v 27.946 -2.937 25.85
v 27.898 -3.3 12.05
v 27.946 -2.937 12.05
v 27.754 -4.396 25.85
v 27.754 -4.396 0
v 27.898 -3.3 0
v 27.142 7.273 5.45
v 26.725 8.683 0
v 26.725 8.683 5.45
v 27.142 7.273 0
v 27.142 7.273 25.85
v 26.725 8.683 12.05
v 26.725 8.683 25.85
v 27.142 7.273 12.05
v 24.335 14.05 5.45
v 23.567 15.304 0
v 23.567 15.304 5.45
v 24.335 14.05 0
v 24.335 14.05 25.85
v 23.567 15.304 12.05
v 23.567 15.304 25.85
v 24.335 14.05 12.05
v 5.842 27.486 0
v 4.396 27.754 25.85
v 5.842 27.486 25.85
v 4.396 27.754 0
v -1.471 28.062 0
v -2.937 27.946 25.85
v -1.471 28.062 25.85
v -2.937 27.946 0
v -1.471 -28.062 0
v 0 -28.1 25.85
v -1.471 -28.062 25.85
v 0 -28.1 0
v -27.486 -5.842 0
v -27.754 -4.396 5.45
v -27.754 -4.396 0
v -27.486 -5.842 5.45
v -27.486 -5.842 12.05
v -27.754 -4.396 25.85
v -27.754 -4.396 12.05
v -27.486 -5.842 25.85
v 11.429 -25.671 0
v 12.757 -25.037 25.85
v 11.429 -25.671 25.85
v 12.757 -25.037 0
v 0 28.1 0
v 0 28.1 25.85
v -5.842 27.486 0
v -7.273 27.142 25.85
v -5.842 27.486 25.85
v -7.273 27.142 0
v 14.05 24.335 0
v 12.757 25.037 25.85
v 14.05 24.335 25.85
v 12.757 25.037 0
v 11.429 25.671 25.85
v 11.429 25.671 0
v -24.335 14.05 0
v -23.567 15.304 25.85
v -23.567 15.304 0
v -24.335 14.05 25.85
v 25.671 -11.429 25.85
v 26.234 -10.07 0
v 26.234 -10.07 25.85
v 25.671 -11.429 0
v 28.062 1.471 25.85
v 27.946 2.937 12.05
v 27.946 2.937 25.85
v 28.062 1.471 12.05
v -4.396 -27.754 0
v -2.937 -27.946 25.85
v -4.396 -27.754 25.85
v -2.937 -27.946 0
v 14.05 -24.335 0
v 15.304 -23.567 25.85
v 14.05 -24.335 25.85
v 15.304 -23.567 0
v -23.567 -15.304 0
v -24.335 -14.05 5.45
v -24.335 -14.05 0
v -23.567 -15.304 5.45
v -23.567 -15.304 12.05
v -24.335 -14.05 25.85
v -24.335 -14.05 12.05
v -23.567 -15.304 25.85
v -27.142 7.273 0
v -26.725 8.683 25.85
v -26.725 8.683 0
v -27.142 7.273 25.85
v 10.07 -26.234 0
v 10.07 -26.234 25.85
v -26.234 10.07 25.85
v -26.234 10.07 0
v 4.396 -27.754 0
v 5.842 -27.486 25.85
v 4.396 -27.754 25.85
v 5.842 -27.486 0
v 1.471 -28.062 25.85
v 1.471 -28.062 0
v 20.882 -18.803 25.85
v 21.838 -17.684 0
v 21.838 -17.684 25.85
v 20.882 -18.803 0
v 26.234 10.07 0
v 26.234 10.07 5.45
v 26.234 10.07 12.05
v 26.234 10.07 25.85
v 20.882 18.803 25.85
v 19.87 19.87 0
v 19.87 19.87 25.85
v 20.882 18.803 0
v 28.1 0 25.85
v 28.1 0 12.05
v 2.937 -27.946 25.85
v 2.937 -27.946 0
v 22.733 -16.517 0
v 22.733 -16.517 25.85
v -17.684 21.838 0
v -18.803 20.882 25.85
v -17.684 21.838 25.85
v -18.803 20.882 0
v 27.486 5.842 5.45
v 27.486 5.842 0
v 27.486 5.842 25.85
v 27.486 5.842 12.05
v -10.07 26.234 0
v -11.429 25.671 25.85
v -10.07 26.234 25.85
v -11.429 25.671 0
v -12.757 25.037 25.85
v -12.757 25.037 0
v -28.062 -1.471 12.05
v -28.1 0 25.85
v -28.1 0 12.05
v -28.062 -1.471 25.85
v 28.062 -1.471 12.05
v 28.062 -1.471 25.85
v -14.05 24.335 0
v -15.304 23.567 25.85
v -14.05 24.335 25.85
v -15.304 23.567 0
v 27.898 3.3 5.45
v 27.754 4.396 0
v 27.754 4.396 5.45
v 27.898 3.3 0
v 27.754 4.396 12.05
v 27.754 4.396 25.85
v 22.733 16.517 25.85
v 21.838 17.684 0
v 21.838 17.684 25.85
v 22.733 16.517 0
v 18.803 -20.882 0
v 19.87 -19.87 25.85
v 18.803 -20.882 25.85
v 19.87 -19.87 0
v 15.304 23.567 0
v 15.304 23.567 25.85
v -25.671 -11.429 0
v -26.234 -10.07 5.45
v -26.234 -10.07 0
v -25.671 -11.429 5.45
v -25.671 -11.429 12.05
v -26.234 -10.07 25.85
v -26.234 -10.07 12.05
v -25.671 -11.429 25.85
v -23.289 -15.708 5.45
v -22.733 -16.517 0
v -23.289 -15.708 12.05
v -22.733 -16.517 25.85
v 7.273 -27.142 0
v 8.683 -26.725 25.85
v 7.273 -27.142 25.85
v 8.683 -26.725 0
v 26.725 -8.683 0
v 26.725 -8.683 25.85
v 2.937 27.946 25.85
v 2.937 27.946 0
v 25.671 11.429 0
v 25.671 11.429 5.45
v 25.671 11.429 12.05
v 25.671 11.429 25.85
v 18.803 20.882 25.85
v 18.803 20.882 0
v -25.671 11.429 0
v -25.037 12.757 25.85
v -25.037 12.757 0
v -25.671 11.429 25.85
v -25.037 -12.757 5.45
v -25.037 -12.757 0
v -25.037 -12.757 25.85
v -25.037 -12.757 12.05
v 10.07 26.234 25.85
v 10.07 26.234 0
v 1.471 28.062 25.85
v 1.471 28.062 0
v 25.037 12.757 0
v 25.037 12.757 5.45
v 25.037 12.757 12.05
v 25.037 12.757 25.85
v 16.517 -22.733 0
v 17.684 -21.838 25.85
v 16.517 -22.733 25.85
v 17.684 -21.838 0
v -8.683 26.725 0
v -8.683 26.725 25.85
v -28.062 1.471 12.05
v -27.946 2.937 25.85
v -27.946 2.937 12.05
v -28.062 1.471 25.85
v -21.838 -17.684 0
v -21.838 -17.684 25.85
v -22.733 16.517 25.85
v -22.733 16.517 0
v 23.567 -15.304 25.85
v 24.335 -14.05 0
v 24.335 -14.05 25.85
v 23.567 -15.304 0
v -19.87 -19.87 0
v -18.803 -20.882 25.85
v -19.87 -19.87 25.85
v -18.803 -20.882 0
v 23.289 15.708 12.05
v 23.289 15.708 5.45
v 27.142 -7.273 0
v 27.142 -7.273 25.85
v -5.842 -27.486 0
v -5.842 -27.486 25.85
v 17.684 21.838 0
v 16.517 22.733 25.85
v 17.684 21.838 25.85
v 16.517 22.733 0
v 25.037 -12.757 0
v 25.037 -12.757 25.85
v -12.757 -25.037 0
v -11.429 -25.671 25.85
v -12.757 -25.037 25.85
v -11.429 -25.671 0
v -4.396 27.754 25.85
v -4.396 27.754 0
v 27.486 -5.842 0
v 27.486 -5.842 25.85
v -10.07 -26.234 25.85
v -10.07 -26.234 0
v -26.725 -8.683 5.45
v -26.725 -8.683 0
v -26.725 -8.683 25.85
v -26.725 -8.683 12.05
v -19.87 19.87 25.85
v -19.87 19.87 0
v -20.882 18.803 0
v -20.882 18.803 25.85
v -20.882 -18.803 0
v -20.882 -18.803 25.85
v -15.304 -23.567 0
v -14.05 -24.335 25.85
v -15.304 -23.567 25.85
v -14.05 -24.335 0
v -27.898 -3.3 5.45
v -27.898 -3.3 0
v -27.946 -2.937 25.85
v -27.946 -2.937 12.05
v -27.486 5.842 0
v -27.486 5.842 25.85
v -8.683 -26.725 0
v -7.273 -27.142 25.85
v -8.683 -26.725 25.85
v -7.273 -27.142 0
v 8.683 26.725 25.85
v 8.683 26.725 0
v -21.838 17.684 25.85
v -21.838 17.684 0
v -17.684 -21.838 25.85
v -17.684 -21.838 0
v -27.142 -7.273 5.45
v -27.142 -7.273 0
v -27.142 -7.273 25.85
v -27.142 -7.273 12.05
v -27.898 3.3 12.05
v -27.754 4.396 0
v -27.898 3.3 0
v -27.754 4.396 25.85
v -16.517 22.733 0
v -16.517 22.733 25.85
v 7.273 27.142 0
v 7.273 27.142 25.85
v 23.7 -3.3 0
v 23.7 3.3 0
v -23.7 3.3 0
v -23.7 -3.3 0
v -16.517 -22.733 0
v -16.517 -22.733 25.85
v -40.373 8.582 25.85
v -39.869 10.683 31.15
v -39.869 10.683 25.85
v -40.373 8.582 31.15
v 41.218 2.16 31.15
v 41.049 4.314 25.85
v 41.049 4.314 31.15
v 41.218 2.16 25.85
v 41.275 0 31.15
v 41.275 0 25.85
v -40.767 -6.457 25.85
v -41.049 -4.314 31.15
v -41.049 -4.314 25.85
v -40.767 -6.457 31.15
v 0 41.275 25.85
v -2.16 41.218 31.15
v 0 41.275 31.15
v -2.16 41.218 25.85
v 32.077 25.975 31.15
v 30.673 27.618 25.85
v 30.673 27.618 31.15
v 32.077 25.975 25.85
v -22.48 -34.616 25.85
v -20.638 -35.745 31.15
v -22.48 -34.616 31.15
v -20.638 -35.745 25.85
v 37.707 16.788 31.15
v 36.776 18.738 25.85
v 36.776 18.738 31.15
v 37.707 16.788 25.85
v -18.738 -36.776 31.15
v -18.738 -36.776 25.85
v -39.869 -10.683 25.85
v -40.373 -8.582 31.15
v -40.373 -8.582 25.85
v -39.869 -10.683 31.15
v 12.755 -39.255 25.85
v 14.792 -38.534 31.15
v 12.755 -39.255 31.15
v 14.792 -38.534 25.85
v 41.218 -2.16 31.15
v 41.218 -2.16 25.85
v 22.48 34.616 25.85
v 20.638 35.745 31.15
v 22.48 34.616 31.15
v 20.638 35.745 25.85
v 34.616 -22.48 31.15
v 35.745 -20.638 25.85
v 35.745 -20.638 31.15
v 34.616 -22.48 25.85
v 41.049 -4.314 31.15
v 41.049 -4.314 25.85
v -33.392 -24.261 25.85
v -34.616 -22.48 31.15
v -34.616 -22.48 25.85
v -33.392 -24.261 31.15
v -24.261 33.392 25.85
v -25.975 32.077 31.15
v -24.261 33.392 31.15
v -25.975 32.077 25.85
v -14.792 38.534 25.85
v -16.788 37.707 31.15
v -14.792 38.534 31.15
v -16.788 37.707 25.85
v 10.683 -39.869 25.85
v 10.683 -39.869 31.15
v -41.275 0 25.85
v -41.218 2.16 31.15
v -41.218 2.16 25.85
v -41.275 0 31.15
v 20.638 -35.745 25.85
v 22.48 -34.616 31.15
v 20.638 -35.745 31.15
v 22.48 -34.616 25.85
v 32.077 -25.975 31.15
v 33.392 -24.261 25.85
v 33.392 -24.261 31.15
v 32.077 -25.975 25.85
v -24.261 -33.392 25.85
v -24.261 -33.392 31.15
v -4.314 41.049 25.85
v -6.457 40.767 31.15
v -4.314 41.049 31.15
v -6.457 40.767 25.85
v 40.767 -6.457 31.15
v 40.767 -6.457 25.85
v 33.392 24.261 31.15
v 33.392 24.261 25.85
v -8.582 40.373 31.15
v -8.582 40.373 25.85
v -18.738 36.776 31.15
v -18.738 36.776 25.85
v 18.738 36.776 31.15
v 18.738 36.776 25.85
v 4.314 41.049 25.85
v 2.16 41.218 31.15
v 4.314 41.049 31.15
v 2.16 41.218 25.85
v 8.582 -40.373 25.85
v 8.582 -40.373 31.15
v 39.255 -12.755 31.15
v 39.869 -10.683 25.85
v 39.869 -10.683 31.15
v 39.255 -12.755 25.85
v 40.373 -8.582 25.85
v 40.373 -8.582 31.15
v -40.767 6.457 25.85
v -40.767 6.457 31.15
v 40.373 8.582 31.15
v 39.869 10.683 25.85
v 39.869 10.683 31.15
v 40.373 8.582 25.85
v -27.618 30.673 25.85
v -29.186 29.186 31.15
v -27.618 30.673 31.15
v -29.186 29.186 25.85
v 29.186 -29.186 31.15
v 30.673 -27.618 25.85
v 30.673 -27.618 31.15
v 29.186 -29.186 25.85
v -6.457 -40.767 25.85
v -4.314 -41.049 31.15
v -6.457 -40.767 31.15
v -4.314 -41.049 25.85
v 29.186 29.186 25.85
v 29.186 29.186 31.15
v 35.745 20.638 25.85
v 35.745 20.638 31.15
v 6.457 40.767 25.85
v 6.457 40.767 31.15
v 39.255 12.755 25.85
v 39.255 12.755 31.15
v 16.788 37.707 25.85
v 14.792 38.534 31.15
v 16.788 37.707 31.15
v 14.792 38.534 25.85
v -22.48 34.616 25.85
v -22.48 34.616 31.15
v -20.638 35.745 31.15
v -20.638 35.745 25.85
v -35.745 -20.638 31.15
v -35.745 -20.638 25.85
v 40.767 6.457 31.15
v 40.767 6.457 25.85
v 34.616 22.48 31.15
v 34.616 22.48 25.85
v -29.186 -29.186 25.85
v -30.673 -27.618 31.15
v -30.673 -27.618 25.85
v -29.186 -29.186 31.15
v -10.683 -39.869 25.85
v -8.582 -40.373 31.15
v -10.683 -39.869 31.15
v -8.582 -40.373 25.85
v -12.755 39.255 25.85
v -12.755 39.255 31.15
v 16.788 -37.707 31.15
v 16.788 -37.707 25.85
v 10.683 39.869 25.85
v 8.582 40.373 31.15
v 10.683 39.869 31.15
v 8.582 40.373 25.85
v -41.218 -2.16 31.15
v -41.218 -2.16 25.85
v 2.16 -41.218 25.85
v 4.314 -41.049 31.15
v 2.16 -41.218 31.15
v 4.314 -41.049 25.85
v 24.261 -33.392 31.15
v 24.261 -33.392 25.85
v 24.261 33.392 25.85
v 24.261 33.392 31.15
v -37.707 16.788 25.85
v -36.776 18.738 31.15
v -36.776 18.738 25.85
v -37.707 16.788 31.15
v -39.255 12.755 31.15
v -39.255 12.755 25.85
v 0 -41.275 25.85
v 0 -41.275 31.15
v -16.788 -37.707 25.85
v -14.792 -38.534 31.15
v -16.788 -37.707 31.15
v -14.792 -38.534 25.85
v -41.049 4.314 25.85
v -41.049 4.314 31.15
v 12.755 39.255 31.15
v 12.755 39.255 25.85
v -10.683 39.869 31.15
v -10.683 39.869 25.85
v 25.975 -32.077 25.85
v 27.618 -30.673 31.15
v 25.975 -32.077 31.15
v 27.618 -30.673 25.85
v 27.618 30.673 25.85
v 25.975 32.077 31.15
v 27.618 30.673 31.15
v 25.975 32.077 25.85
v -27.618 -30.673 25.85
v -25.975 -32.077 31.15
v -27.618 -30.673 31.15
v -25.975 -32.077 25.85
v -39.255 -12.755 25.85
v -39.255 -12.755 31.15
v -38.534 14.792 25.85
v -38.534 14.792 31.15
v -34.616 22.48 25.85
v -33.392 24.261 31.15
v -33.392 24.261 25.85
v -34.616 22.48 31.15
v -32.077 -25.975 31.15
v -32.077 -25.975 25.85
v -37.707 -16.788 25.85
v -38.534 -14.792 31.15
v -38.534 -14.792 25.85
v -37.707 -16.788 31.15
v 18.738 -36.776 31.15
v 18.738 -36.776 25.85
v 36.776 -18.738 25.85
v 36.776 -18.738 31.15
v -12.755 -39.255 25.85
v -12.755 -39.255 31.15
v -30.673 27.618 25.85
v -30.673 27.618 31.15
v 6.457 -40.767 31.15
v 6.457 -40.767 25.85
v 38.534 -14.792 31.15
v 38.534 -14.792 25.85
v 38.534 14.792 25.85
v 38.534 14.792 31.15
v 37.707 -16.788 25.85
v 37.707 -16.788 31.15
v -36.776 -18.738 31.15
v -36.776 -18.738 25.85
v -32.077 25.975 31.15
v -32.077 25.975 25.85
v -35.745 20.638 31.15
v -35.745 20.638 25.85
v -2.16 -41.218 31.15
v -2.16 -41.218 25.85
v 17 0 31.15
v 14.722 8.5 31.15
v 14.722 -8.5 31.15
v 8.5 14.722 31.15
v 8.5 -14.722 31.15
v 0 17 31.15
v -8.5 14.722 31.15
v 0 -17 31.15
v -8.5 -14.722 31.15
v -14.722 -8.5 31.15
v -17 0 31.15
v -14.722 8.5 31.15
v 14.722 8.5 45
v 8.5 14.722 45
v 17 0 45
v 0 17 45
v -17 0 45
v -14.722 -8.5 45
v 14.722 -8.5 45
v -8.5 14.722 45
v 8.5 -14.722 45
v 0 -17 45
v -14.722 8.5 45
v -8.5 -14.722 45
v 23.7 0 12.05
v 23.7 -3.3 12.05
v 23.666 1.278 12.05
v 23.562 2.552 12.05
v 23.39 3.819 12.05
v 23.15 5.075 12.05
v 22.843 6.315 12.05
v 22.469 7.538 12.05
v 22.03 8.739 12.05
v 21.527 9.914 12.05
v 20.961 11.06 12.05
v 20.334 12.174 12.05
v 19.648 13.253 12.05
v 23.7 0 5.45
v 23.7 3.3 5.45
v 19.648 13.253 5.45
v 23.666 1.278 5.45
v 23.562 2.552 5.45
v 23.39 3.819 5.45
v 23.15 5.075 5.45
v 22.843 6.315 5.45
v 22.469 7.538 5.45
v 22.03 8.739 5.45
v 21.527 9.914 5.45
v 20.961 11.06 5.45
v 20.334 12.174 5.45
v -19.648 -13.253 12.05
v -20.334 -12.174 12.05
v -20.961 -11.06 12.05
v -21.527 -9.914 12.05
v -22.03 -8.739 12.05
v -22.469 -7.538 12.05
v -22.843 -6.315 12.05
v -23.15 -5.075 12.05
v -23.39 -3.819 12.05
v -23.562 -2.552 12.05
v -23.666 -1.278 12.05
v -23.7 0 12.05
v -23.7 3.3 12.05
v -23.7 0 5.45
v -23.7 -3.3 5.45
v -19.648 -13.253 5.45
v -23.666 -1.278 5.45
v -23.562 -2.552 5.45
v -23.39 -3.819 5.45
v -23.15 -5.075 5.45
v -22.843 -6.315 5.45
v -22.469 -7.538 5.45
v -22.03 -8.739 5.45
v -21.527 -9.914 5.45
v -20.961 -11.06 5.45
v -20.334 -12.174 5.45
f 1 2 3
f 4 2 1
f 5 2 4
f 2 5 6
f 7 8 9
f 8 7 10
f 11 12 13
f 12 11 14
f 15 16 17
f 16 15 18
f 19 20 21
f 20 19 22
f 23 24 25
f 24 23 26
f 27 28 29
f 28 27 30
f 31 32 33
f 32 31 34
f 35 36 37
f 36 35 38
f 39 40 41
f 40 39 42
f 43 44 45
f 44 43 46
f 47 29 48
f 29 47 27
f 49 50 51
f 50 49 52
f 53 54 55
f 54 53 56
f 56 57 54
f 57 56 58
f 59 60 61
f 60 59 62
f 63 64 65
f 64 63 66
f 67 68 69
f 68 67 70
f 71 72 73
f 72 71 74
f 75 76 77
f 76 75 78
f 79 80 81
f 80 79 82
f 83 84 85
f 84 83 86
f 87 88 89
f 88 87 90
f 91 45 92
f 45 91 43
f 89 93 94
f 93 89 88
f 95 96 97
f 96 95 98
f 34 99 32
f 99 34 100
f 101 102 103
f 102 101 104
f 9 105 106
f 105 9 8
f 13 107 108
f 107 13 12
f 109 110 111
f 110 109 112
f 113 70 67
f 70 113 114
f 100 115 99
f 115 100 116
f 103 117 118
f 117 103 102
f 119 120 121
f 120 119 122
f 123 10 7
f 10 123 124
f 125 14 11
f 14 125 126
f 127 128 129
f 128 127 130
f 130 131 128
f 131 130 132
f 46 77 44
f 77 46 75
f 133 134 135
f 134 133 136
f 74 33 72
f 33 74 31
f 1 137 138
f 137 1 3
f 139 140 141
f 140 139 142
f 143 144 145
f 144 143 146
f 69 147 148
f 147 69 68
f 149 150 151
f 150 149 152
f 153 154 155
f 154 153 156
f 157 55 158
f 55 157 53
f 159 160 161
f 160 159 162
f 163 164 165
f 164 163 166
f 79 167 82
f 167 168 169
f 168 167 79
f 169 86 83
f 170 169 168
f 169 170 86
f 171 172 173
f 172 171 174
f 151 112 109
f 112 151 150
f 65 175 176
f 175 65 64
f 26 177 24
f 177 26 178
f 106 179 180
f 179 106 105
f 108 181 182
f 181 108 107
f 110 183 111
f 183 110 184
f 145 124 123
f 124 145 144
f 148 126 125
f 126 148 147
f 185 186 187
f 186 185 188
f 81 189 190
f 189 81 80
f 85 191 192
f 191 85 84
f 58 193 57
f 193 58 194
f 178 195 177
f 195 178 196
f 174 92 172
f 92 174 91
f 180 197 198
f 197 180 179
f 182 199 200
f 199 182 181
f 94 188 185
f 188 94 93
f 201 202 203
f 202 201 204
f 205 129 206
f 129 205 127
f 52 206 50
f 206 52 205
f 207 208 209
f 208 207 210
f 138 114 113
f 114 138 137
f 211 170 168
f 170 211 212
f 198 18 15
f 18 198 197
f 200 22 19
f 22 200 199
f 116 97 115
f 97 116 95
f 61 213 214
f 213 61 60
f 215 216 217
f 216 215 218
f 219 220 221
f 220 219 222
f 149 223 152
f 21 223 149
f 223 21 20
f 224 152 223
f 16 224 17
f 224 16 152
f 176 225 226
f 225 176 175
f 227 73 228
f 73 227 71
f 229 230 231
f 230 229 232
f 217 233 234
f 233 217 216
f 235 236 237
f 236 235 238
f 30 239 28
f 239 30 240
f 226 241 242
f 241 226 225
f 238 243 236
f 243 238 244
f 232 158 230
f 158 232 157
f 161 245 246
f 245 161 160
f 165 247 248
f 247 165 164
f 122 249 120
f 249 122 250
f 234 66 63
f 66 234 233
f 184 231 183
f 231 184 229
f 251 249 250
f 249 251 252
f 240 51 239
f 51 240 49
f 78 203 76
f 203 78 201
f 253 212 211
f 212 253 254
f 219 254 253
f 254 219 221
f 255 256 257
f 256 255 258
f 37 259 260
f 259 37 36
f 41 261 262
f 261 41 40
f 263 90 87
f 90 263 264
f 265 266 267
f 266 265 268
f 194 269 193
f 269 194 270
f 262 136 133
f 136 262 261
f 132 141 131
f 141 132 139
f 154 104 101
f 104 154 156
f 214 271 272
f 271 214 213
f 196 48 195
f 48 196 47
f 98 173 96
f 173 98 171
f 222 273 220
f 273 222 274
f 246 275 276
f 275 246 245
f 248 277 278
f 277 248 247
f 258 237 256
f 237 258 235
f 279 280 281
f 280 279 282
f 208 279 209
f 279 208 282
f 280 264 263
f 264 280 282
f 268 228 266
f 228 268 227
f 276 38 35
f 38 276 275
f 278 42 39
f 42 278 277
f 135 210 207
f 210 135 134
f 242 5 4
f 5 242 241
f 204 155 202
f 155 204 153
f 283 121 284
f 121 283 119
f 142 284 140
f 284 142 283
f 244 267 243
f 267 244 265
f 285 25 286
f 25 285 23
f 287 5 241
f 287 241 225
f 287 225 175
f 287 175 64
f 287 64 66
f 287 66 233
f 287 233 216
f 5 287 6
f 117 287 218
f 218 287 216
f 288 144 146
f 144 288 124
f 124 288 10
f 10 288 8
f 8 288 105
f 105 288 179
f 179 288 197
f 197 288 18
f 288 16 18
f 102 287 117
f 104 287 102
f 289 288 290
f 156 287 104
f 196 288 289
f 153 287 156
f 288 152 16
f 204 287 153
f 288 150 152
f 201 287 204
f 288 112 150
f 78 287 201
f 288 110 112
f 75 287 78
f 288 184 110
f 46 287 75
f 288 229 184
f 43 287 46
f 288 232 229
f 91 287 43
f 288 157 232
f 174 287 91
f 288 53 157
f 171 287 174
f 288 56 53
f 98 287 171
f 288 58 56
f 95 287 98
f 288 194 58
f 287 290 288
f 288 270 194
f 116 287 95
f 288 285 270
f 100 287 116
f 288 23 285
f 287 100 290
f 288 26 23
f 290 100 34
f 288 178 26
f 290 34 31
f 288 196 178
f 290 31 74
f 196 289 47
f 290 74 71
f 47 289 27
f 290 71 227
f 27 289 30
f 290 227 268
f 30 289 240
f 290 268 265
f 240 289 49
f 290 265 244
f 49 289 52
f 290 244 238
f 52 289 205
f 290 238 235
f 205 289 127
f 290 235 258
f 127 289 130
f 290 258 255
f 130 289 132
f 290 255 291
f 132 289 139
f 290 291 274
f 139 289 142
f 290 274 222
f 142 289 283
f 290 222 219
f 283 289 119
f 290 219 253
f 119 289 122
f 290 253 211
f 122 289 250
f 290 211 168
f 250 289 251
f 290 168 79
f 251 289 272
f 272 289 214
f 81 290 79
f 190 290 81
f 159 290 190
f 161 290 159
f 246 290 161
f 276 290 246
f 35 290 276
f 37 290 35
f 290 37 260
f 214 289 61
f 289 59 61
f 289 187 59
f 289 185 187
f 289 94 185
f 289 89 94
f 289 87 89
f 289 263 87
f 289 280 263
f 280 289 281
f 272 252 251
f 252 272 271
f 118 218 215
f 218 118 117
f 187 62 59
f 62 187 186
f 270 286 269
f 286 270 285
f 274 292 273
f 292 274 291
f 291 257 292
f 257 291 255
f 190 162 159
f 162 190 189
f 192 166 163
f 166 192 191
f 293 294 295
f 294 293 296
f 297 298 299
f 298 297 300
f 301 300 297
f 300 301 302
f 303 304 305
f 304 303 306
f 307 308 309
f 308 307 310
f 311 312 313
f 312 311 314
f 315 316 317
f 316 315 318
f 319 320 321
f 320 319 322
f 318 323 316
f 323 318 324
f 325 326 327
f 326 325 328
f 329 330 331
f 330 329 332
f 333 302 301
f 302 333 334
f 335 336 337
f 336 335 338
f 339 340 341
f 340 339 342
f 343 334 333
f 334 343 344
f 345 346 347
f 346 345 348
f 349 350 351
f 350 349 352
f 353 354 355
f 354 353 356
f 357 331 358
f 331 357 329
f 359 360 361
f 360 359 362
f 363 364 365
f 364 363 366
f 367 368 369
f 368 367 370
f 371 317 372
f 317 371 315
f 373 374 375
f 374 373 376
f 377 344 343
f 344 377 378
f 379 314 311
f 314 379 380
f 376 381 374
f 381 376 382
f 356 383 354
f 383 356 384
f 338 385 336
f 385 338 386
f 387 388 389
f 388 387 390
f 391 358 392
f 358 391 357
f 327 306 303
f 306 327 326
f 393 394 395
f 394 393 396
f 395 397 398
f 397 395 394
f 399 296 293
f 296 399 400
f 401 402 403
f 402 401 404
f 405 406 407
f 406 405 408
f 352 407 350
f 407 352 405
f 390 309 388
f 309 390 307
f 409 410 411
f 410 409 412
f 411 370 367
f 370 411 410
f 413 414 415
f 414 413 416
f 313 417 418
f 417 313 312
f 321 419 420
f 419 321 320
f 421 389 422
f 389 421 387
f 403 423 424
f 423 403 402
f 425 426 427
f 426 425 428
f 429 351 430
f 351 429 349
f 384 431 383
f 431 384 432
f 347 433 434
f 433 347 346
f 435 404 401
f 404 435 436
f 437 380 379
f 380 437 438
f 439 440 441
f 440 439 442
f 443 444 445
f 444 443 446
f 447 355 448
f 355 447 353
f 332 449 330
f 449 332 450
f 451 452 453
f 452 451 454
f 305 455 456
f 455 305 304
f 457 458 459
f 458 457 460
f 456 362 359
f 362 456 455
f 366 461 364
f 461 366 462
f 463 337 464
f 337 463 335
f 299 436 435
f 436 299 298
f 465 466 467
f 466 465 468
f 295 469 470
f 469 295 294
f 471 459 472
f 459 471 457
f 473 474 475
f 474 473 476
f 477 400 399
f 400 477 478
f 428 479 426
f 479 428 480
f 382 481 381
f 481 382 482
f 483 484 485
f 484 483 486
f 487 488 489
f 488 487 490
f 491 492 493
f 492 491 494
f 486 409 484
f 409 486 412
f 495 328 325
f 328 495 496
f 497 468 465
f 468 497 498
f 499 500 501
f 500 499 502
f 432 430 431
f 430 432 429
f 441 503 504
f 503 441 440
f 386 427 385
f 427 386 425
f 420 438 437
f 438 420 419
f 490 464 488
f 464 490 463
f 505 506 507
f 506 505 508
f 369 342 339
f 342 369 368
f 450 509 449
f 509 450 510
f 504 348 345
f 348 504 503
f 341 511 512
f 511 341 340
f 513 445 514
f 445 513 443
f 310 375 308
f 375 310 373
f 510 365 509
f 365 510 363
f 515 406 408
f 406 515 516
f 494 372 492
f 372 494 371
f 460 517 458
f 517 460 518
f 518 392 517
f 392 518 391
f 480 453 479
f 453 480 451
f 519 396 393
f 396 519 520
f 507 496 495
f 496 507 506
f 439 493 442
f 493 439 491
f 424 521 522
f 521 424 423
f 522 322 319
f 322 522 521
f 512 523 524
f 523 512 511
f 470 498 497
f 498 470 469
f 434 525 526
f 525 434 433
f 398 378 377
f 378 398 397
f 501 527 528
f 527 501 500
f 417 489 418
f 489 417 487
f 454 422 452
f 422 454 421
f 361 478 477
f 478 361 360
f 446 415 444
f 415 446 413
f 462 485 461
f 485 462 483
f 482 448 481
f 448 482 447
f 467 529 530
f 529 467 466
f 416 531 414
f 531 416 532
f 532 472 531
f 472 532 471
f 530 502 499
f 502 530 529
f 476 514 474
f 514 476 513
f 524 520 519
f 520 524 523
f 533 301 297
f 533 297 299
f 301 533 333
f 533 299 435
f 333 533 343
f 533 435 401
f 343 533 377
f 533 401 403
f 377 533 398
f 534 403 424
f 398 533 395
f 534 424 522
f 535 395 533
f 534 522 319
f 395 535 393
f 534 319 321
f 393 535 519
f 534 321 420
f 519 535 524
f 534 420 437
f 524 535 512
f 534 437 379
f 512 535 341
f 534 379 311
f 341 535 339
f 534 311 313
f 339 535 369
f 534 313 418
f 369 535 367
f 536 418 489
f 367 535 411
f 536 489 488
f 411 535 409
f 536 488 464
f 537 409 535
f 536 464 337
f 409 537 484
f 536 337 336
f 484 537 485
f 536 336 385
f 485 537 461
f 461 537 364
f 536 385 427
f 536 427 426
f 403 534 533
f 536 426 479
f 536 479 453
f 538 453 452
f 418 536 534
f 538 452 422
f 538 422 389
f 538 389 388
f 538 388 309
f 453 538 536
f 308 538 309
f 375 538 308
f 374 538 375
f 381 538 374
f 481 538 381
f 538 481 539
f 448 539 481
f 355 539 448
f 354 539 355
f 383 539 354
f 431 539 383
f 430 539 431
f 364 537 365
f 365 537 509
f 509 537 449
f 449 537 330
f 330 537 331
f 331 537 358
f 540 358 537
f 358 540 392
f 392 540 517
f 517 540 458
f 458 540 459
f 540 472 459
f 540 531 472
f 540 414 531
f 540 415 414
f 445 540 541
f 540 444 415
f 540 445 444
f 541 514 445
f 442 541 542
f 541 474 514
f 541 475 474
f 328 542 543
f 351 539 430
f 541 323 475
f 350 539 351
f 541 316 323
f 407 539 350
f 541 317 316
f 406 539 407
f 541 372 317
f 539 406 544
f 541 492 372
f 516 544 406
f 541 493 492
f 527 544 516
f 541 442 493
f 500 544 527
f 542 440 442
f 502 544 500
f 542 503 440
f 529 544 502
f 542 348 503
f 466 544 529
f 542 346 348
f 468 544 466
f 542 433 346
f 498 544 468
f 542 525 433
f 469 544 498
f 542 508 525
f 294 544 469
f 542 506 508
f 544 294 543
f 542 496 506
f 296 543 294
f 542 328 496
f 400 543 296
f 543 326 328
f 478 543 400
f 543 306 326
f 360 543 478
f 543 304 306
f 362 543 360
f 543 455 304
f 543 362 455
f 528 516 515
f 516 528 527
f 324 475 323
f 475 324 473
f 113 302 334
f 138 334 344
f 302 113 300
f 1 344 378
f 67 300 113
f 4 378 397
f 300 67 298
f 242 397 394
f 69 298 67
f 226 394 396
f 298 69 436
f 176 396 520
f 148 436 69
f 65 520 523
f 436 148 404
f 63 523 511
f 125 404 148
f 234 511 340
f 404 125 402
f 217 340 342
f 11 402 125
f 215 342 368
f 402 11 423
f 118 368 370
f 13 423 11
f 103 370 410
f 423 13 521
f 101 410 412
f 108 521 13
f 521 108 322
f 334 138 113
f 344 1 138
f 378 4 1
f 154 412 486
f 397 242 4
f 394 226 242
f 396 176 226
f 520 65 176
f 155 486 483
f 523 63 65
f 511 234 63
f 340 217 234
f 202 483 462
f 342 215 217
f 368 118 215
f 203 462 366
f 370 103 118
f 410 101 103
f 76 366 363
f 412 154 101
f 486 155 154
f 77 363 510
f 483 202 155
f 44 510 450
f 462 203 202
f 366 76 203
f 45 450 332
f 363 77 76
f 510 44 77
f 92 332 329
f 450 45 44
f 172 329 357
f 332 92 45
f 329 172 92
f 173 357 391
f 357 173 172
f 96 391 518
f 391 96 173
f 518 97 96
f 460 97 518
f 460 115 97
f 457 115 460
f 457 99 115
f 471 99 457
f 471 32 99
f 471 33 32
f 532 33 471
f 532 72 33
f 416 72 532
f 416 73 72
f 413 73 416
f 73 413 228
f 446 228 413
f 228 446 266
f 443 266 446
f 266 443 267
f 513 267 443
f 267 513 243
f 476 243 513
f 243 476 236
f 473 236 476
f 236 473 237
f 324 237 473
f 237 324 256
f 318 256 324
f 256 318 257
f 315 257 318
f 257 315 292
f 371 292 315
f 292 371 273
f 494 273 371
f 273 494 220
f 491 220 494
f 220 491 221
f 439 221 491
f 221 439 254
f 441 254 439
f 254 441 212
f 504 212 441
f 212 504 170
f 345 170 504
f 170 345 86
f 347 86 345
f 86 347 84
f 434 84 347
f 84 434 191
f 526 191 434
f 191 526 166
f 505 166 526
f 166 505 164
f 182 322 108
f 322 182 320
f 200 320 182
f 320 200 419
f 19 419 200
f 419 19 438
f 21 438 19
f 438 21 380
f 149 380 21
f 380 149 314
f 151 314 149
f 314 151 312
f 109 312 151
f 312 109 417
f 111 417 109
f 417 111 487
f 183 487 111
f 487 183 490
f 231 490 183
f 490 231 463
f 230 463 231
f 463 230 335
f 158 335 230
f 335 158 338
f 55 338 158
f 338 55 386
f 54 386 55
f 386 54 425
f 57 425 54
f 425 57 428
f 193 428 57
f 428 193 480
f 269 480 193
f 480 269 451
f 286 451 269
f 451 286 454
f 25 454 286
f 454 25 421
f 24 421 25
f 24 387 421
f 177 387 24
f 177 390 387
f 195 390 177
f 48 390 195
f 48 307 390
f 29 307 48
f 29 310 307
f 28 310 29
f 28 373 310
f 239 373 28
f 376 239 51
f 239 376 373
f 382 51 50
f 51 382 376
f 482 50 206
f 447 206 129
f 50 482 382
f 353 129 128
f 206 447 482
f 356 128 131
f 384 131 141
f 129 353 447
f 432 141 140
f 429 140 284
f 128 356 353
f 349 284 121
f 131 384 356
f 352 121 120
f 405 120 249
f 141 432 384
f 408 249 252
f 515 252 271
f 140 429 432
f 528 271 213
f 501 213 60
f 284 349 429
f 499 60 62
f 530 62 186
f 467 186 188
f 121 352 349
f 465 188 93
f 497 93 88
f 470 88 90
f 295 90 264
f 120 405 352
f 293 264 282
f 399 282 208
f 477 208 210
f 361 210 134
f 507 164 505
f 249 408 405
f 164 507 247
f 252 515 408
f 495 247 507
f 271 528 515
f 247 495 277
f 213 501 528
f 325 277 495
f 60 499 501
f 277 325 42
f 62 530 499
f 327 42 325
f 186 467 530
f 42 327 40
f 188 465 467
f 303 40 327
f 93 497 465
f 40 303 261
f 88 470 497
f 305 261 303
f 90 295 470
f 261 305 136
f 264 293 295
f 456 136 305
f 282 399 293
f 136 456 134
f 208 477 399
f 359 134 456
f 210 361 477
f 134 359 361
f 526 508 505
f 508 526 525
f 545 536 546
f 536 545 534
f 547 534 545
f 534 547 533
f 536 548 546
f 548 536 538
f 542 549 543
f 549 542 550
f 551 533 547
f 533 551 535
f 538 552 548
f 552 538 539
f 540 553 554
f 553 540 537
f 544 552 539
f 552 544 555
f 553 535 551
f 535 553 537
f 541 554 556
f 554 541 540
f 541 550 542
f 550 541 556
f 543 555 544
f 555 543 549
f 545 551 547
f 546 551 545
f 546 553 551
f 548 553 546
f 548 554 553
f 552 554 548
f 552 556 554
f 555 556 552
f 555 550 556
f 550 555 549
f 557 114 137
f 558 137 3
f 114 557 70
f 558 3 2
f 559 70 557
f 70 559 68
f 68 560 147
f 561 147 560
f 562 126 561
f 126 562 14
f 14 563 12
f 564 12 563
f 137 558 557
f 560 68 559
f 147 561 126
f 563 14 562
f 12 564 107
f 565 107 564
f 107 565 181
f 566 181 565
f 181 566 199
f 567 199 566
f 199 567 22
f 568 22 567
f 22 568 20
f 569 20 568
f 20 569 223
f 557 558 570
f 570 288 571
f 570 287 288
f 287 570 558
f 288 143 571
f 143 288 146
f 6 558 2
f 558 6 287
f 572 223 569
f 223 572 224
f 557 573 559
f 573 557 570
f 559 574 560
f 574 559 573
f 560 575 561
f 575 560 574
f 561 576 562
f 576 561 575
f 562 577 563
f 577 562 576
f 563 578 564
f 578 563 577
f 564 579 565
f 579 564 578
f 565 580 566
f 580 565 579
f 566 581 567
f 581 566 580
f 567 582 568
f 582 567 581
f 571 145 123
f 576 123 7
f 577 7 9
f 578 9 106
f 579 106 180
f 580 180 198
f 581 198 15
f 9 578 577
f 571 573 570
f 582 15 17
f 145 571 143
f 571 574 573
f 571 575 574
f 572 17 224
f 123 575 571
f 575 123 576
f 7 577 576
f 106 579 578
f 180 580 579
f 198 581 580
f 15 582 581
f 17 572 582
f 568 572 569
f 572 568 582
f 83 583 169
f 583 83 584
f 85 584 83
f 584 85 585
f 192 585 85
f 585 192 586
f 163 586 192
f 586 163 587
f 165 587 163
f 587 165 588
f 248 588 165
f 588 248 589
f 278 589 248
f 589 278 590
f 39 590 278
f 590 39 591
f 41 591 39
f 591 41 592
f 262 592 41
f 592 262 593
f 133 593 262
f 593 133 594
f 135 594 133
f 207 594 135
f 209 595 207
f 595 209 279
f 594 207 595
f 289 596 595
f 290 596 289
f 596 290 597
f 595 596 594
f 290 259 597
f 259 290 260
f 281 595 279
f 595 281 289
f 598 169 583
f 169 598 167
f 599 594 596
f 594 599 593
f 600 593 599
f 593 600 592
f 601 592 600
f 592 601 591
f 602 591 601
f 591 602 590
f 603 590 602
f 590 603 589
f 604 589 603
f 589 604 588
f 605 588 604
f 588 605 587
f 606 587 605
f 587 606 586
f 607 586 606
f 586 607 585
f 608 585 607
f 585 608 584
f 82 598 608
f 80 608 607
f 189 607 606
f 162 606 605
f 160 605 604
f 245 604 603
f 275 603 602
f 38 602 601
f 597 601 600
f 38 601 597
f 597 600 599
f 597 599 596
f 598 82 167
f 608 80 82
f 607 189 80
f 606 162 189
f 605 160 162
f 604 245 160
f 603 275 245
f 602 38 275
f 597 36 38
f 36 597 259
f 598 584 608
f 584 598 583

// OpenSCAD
$fn=120;

// Raffle-Ticket Hurricane — EOD bayonet plug
receiver_id=57.15;

// Proven receiver uses 5.5 mm lugs, 180° apart.
// Plug male stem gets generous printable clearance.
stem_od=56.20;
stem_len=26.0;

cap_od=82.55;
cap_th=5.0;

// Lug center is 17.25 mm below receiver top.
// With cap underside at z=stem_len, locking channel center:
lock_z=stem_len-17.25;   // 8.75 mm above stem bottom

slot_w=6.6;
slot_depth=4.4;
turn_angle=34;

// Simple chunky hand grip
grip_d=34;
grip_h=14;

module one_slot(angle=0){
    rotate([0,0,angle]){
        // Straight entry leg, open from stem bottom.
        translate([stem_od/2-slot_depth, -slot_w/2, -0.2])
            cube([slot_depth+1.0, slot_w, lock_z+slot_w/2+0.2]);

        // True curved locking leg.
        rotate_extrude(angle=turn_angle, convexity=8)
            translate([stem_od/2-slot_depth, lock_z-slot_w/2])
                square([slot_depth+1.0, slot_w]);
    }
}

difference(){
    union(){
        // Male bayonet stem
        cylinder(h=stem_len+0.25,d=stem_od);

        // Full sealing cap
        translate([0,0,stem_len-0.15])
            cylinder(h=cap_th+0.30,d=cap_od);

        // 12-sided easy-grab twist knob
        translate([0,0,stem_len+cap_th-0.20])
            cylinder(h=grip_h+0.20,d=grip_d,$fn=12);
    }

    one_slot(0);
    one_slot(180);
}
